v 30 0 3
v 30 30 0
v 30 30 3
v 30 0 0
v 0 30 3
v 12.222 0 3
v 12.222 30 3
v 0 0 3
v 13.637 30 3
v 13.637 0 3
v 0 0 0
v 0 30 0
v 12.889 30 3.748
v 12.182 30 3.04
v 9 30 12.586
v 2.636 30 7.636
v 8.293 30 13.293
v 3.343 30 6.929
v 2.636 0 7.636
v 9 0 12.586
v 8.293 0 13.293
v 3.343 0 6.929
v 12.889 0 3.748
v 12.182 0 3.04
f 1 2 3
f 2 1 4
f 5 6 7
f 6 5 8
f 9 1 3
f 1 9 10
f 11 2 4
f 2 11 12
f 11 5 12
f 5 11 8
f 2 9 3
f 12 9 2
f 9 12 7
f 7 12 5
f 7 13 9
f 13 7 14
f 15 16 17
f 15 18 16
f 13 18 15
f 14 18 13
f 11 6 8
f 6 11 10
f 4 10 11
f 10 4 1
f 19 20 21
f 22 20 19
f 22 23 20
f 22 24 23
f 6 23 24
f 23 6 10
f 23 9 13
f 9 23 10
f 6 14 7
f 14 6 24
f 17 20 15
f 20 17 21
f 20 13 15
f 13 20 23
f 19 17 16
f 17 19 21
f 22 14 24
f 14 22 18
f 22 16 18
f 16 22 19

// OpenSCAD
// file: dove_tail.scad
top = 10;
left = 10;
right = 10;
width = 1;
thickness = 10;
height_offset = 10;

module dove_tail(top, left, right, width, thickness){
    translate([right, 0, 0]){
        hull(){
            translate([0, 0, 0]){
                translate([left + width, 0, 0]){
                    cube(width);
                }
                translate([right * -1 + width, 0, 0]){
                    cube(width);
                }
                translate([width, 0, top]){
                    cube(width);
                }
            }
            translate([0, thickness, 0]){
                translate([left + width, width, 0]){
                    cube(width);
                }
                translate([right * -1 + width, width, 0]){
                    cube(width);
                }
                translate([width, width, top]){
                    cube(width);
                }
            }
        }
    }
}
module dove_tail_negative(top, left, right, width, thickness, height_offset){
    length_percent = 1;
    length = left + right + width + width + width;
    height = top + height_offset;
    difference(){
        translate([0, 0, 0]){
            cube([length * length_percent, thickness, height]);
        }
        translate([length - length, 0, 0]){
            dove_tail(top, left, right, width, thickness);
        }
    }
}

dove_tail(top, left, right, width, thickness);
translate([left + right + 10, 0, 0 ]){
    dove_tail_negative(top, left, right, width, thickness, height_offset);
}
// main file
use <dove_tail.scad>
//Brace
width = 30;
height = 3;
length = 30; 

//Dove tail settings
dove_tail_left = 3.5;
dove_tail_right = 3.5;
dove_tail_top = 9;
dove_tail_width = 1;
dove_tail_thickness = width - 2;
dove_tail_x = dove_tail_left + dove_tail_right + 2;
dove_tail_y = 0;
dove_tail_z = height + dove_tail_top + 2;
dove_tail_rotate_x = 0;
dove_tail_rotate_y = 180 - 45;
dove_tail_rotate_z = 0;

//Top mount 
top_width = 8;
top_length = width;
top_height = 1;
top_x = 8.16;
top_y = 0;
top_z = 7.0625;
top_rotate_x = 0;
top_rotate_y = 45;
top_rotate_z = 0;

cube([width, length, height]);

translate([top_x, top_y, top_z]){
    rotate([top_rotate_x, top_rotate_y, top_rotate_z]){
        cube([top_width, top_length, top_height]);
    }
}

translate([dove_tail_x, dove_tail_y, dove_tail_z]){
    rotate([dove_tail_rotate_x, dove_tail_rotate_y, dove_tail_rotate_z]){
        dove_tail(dove_tail_top, dove_tail_left, dove_tail_right, dove_tail_width, dove_tail_thickness);
    }
}
